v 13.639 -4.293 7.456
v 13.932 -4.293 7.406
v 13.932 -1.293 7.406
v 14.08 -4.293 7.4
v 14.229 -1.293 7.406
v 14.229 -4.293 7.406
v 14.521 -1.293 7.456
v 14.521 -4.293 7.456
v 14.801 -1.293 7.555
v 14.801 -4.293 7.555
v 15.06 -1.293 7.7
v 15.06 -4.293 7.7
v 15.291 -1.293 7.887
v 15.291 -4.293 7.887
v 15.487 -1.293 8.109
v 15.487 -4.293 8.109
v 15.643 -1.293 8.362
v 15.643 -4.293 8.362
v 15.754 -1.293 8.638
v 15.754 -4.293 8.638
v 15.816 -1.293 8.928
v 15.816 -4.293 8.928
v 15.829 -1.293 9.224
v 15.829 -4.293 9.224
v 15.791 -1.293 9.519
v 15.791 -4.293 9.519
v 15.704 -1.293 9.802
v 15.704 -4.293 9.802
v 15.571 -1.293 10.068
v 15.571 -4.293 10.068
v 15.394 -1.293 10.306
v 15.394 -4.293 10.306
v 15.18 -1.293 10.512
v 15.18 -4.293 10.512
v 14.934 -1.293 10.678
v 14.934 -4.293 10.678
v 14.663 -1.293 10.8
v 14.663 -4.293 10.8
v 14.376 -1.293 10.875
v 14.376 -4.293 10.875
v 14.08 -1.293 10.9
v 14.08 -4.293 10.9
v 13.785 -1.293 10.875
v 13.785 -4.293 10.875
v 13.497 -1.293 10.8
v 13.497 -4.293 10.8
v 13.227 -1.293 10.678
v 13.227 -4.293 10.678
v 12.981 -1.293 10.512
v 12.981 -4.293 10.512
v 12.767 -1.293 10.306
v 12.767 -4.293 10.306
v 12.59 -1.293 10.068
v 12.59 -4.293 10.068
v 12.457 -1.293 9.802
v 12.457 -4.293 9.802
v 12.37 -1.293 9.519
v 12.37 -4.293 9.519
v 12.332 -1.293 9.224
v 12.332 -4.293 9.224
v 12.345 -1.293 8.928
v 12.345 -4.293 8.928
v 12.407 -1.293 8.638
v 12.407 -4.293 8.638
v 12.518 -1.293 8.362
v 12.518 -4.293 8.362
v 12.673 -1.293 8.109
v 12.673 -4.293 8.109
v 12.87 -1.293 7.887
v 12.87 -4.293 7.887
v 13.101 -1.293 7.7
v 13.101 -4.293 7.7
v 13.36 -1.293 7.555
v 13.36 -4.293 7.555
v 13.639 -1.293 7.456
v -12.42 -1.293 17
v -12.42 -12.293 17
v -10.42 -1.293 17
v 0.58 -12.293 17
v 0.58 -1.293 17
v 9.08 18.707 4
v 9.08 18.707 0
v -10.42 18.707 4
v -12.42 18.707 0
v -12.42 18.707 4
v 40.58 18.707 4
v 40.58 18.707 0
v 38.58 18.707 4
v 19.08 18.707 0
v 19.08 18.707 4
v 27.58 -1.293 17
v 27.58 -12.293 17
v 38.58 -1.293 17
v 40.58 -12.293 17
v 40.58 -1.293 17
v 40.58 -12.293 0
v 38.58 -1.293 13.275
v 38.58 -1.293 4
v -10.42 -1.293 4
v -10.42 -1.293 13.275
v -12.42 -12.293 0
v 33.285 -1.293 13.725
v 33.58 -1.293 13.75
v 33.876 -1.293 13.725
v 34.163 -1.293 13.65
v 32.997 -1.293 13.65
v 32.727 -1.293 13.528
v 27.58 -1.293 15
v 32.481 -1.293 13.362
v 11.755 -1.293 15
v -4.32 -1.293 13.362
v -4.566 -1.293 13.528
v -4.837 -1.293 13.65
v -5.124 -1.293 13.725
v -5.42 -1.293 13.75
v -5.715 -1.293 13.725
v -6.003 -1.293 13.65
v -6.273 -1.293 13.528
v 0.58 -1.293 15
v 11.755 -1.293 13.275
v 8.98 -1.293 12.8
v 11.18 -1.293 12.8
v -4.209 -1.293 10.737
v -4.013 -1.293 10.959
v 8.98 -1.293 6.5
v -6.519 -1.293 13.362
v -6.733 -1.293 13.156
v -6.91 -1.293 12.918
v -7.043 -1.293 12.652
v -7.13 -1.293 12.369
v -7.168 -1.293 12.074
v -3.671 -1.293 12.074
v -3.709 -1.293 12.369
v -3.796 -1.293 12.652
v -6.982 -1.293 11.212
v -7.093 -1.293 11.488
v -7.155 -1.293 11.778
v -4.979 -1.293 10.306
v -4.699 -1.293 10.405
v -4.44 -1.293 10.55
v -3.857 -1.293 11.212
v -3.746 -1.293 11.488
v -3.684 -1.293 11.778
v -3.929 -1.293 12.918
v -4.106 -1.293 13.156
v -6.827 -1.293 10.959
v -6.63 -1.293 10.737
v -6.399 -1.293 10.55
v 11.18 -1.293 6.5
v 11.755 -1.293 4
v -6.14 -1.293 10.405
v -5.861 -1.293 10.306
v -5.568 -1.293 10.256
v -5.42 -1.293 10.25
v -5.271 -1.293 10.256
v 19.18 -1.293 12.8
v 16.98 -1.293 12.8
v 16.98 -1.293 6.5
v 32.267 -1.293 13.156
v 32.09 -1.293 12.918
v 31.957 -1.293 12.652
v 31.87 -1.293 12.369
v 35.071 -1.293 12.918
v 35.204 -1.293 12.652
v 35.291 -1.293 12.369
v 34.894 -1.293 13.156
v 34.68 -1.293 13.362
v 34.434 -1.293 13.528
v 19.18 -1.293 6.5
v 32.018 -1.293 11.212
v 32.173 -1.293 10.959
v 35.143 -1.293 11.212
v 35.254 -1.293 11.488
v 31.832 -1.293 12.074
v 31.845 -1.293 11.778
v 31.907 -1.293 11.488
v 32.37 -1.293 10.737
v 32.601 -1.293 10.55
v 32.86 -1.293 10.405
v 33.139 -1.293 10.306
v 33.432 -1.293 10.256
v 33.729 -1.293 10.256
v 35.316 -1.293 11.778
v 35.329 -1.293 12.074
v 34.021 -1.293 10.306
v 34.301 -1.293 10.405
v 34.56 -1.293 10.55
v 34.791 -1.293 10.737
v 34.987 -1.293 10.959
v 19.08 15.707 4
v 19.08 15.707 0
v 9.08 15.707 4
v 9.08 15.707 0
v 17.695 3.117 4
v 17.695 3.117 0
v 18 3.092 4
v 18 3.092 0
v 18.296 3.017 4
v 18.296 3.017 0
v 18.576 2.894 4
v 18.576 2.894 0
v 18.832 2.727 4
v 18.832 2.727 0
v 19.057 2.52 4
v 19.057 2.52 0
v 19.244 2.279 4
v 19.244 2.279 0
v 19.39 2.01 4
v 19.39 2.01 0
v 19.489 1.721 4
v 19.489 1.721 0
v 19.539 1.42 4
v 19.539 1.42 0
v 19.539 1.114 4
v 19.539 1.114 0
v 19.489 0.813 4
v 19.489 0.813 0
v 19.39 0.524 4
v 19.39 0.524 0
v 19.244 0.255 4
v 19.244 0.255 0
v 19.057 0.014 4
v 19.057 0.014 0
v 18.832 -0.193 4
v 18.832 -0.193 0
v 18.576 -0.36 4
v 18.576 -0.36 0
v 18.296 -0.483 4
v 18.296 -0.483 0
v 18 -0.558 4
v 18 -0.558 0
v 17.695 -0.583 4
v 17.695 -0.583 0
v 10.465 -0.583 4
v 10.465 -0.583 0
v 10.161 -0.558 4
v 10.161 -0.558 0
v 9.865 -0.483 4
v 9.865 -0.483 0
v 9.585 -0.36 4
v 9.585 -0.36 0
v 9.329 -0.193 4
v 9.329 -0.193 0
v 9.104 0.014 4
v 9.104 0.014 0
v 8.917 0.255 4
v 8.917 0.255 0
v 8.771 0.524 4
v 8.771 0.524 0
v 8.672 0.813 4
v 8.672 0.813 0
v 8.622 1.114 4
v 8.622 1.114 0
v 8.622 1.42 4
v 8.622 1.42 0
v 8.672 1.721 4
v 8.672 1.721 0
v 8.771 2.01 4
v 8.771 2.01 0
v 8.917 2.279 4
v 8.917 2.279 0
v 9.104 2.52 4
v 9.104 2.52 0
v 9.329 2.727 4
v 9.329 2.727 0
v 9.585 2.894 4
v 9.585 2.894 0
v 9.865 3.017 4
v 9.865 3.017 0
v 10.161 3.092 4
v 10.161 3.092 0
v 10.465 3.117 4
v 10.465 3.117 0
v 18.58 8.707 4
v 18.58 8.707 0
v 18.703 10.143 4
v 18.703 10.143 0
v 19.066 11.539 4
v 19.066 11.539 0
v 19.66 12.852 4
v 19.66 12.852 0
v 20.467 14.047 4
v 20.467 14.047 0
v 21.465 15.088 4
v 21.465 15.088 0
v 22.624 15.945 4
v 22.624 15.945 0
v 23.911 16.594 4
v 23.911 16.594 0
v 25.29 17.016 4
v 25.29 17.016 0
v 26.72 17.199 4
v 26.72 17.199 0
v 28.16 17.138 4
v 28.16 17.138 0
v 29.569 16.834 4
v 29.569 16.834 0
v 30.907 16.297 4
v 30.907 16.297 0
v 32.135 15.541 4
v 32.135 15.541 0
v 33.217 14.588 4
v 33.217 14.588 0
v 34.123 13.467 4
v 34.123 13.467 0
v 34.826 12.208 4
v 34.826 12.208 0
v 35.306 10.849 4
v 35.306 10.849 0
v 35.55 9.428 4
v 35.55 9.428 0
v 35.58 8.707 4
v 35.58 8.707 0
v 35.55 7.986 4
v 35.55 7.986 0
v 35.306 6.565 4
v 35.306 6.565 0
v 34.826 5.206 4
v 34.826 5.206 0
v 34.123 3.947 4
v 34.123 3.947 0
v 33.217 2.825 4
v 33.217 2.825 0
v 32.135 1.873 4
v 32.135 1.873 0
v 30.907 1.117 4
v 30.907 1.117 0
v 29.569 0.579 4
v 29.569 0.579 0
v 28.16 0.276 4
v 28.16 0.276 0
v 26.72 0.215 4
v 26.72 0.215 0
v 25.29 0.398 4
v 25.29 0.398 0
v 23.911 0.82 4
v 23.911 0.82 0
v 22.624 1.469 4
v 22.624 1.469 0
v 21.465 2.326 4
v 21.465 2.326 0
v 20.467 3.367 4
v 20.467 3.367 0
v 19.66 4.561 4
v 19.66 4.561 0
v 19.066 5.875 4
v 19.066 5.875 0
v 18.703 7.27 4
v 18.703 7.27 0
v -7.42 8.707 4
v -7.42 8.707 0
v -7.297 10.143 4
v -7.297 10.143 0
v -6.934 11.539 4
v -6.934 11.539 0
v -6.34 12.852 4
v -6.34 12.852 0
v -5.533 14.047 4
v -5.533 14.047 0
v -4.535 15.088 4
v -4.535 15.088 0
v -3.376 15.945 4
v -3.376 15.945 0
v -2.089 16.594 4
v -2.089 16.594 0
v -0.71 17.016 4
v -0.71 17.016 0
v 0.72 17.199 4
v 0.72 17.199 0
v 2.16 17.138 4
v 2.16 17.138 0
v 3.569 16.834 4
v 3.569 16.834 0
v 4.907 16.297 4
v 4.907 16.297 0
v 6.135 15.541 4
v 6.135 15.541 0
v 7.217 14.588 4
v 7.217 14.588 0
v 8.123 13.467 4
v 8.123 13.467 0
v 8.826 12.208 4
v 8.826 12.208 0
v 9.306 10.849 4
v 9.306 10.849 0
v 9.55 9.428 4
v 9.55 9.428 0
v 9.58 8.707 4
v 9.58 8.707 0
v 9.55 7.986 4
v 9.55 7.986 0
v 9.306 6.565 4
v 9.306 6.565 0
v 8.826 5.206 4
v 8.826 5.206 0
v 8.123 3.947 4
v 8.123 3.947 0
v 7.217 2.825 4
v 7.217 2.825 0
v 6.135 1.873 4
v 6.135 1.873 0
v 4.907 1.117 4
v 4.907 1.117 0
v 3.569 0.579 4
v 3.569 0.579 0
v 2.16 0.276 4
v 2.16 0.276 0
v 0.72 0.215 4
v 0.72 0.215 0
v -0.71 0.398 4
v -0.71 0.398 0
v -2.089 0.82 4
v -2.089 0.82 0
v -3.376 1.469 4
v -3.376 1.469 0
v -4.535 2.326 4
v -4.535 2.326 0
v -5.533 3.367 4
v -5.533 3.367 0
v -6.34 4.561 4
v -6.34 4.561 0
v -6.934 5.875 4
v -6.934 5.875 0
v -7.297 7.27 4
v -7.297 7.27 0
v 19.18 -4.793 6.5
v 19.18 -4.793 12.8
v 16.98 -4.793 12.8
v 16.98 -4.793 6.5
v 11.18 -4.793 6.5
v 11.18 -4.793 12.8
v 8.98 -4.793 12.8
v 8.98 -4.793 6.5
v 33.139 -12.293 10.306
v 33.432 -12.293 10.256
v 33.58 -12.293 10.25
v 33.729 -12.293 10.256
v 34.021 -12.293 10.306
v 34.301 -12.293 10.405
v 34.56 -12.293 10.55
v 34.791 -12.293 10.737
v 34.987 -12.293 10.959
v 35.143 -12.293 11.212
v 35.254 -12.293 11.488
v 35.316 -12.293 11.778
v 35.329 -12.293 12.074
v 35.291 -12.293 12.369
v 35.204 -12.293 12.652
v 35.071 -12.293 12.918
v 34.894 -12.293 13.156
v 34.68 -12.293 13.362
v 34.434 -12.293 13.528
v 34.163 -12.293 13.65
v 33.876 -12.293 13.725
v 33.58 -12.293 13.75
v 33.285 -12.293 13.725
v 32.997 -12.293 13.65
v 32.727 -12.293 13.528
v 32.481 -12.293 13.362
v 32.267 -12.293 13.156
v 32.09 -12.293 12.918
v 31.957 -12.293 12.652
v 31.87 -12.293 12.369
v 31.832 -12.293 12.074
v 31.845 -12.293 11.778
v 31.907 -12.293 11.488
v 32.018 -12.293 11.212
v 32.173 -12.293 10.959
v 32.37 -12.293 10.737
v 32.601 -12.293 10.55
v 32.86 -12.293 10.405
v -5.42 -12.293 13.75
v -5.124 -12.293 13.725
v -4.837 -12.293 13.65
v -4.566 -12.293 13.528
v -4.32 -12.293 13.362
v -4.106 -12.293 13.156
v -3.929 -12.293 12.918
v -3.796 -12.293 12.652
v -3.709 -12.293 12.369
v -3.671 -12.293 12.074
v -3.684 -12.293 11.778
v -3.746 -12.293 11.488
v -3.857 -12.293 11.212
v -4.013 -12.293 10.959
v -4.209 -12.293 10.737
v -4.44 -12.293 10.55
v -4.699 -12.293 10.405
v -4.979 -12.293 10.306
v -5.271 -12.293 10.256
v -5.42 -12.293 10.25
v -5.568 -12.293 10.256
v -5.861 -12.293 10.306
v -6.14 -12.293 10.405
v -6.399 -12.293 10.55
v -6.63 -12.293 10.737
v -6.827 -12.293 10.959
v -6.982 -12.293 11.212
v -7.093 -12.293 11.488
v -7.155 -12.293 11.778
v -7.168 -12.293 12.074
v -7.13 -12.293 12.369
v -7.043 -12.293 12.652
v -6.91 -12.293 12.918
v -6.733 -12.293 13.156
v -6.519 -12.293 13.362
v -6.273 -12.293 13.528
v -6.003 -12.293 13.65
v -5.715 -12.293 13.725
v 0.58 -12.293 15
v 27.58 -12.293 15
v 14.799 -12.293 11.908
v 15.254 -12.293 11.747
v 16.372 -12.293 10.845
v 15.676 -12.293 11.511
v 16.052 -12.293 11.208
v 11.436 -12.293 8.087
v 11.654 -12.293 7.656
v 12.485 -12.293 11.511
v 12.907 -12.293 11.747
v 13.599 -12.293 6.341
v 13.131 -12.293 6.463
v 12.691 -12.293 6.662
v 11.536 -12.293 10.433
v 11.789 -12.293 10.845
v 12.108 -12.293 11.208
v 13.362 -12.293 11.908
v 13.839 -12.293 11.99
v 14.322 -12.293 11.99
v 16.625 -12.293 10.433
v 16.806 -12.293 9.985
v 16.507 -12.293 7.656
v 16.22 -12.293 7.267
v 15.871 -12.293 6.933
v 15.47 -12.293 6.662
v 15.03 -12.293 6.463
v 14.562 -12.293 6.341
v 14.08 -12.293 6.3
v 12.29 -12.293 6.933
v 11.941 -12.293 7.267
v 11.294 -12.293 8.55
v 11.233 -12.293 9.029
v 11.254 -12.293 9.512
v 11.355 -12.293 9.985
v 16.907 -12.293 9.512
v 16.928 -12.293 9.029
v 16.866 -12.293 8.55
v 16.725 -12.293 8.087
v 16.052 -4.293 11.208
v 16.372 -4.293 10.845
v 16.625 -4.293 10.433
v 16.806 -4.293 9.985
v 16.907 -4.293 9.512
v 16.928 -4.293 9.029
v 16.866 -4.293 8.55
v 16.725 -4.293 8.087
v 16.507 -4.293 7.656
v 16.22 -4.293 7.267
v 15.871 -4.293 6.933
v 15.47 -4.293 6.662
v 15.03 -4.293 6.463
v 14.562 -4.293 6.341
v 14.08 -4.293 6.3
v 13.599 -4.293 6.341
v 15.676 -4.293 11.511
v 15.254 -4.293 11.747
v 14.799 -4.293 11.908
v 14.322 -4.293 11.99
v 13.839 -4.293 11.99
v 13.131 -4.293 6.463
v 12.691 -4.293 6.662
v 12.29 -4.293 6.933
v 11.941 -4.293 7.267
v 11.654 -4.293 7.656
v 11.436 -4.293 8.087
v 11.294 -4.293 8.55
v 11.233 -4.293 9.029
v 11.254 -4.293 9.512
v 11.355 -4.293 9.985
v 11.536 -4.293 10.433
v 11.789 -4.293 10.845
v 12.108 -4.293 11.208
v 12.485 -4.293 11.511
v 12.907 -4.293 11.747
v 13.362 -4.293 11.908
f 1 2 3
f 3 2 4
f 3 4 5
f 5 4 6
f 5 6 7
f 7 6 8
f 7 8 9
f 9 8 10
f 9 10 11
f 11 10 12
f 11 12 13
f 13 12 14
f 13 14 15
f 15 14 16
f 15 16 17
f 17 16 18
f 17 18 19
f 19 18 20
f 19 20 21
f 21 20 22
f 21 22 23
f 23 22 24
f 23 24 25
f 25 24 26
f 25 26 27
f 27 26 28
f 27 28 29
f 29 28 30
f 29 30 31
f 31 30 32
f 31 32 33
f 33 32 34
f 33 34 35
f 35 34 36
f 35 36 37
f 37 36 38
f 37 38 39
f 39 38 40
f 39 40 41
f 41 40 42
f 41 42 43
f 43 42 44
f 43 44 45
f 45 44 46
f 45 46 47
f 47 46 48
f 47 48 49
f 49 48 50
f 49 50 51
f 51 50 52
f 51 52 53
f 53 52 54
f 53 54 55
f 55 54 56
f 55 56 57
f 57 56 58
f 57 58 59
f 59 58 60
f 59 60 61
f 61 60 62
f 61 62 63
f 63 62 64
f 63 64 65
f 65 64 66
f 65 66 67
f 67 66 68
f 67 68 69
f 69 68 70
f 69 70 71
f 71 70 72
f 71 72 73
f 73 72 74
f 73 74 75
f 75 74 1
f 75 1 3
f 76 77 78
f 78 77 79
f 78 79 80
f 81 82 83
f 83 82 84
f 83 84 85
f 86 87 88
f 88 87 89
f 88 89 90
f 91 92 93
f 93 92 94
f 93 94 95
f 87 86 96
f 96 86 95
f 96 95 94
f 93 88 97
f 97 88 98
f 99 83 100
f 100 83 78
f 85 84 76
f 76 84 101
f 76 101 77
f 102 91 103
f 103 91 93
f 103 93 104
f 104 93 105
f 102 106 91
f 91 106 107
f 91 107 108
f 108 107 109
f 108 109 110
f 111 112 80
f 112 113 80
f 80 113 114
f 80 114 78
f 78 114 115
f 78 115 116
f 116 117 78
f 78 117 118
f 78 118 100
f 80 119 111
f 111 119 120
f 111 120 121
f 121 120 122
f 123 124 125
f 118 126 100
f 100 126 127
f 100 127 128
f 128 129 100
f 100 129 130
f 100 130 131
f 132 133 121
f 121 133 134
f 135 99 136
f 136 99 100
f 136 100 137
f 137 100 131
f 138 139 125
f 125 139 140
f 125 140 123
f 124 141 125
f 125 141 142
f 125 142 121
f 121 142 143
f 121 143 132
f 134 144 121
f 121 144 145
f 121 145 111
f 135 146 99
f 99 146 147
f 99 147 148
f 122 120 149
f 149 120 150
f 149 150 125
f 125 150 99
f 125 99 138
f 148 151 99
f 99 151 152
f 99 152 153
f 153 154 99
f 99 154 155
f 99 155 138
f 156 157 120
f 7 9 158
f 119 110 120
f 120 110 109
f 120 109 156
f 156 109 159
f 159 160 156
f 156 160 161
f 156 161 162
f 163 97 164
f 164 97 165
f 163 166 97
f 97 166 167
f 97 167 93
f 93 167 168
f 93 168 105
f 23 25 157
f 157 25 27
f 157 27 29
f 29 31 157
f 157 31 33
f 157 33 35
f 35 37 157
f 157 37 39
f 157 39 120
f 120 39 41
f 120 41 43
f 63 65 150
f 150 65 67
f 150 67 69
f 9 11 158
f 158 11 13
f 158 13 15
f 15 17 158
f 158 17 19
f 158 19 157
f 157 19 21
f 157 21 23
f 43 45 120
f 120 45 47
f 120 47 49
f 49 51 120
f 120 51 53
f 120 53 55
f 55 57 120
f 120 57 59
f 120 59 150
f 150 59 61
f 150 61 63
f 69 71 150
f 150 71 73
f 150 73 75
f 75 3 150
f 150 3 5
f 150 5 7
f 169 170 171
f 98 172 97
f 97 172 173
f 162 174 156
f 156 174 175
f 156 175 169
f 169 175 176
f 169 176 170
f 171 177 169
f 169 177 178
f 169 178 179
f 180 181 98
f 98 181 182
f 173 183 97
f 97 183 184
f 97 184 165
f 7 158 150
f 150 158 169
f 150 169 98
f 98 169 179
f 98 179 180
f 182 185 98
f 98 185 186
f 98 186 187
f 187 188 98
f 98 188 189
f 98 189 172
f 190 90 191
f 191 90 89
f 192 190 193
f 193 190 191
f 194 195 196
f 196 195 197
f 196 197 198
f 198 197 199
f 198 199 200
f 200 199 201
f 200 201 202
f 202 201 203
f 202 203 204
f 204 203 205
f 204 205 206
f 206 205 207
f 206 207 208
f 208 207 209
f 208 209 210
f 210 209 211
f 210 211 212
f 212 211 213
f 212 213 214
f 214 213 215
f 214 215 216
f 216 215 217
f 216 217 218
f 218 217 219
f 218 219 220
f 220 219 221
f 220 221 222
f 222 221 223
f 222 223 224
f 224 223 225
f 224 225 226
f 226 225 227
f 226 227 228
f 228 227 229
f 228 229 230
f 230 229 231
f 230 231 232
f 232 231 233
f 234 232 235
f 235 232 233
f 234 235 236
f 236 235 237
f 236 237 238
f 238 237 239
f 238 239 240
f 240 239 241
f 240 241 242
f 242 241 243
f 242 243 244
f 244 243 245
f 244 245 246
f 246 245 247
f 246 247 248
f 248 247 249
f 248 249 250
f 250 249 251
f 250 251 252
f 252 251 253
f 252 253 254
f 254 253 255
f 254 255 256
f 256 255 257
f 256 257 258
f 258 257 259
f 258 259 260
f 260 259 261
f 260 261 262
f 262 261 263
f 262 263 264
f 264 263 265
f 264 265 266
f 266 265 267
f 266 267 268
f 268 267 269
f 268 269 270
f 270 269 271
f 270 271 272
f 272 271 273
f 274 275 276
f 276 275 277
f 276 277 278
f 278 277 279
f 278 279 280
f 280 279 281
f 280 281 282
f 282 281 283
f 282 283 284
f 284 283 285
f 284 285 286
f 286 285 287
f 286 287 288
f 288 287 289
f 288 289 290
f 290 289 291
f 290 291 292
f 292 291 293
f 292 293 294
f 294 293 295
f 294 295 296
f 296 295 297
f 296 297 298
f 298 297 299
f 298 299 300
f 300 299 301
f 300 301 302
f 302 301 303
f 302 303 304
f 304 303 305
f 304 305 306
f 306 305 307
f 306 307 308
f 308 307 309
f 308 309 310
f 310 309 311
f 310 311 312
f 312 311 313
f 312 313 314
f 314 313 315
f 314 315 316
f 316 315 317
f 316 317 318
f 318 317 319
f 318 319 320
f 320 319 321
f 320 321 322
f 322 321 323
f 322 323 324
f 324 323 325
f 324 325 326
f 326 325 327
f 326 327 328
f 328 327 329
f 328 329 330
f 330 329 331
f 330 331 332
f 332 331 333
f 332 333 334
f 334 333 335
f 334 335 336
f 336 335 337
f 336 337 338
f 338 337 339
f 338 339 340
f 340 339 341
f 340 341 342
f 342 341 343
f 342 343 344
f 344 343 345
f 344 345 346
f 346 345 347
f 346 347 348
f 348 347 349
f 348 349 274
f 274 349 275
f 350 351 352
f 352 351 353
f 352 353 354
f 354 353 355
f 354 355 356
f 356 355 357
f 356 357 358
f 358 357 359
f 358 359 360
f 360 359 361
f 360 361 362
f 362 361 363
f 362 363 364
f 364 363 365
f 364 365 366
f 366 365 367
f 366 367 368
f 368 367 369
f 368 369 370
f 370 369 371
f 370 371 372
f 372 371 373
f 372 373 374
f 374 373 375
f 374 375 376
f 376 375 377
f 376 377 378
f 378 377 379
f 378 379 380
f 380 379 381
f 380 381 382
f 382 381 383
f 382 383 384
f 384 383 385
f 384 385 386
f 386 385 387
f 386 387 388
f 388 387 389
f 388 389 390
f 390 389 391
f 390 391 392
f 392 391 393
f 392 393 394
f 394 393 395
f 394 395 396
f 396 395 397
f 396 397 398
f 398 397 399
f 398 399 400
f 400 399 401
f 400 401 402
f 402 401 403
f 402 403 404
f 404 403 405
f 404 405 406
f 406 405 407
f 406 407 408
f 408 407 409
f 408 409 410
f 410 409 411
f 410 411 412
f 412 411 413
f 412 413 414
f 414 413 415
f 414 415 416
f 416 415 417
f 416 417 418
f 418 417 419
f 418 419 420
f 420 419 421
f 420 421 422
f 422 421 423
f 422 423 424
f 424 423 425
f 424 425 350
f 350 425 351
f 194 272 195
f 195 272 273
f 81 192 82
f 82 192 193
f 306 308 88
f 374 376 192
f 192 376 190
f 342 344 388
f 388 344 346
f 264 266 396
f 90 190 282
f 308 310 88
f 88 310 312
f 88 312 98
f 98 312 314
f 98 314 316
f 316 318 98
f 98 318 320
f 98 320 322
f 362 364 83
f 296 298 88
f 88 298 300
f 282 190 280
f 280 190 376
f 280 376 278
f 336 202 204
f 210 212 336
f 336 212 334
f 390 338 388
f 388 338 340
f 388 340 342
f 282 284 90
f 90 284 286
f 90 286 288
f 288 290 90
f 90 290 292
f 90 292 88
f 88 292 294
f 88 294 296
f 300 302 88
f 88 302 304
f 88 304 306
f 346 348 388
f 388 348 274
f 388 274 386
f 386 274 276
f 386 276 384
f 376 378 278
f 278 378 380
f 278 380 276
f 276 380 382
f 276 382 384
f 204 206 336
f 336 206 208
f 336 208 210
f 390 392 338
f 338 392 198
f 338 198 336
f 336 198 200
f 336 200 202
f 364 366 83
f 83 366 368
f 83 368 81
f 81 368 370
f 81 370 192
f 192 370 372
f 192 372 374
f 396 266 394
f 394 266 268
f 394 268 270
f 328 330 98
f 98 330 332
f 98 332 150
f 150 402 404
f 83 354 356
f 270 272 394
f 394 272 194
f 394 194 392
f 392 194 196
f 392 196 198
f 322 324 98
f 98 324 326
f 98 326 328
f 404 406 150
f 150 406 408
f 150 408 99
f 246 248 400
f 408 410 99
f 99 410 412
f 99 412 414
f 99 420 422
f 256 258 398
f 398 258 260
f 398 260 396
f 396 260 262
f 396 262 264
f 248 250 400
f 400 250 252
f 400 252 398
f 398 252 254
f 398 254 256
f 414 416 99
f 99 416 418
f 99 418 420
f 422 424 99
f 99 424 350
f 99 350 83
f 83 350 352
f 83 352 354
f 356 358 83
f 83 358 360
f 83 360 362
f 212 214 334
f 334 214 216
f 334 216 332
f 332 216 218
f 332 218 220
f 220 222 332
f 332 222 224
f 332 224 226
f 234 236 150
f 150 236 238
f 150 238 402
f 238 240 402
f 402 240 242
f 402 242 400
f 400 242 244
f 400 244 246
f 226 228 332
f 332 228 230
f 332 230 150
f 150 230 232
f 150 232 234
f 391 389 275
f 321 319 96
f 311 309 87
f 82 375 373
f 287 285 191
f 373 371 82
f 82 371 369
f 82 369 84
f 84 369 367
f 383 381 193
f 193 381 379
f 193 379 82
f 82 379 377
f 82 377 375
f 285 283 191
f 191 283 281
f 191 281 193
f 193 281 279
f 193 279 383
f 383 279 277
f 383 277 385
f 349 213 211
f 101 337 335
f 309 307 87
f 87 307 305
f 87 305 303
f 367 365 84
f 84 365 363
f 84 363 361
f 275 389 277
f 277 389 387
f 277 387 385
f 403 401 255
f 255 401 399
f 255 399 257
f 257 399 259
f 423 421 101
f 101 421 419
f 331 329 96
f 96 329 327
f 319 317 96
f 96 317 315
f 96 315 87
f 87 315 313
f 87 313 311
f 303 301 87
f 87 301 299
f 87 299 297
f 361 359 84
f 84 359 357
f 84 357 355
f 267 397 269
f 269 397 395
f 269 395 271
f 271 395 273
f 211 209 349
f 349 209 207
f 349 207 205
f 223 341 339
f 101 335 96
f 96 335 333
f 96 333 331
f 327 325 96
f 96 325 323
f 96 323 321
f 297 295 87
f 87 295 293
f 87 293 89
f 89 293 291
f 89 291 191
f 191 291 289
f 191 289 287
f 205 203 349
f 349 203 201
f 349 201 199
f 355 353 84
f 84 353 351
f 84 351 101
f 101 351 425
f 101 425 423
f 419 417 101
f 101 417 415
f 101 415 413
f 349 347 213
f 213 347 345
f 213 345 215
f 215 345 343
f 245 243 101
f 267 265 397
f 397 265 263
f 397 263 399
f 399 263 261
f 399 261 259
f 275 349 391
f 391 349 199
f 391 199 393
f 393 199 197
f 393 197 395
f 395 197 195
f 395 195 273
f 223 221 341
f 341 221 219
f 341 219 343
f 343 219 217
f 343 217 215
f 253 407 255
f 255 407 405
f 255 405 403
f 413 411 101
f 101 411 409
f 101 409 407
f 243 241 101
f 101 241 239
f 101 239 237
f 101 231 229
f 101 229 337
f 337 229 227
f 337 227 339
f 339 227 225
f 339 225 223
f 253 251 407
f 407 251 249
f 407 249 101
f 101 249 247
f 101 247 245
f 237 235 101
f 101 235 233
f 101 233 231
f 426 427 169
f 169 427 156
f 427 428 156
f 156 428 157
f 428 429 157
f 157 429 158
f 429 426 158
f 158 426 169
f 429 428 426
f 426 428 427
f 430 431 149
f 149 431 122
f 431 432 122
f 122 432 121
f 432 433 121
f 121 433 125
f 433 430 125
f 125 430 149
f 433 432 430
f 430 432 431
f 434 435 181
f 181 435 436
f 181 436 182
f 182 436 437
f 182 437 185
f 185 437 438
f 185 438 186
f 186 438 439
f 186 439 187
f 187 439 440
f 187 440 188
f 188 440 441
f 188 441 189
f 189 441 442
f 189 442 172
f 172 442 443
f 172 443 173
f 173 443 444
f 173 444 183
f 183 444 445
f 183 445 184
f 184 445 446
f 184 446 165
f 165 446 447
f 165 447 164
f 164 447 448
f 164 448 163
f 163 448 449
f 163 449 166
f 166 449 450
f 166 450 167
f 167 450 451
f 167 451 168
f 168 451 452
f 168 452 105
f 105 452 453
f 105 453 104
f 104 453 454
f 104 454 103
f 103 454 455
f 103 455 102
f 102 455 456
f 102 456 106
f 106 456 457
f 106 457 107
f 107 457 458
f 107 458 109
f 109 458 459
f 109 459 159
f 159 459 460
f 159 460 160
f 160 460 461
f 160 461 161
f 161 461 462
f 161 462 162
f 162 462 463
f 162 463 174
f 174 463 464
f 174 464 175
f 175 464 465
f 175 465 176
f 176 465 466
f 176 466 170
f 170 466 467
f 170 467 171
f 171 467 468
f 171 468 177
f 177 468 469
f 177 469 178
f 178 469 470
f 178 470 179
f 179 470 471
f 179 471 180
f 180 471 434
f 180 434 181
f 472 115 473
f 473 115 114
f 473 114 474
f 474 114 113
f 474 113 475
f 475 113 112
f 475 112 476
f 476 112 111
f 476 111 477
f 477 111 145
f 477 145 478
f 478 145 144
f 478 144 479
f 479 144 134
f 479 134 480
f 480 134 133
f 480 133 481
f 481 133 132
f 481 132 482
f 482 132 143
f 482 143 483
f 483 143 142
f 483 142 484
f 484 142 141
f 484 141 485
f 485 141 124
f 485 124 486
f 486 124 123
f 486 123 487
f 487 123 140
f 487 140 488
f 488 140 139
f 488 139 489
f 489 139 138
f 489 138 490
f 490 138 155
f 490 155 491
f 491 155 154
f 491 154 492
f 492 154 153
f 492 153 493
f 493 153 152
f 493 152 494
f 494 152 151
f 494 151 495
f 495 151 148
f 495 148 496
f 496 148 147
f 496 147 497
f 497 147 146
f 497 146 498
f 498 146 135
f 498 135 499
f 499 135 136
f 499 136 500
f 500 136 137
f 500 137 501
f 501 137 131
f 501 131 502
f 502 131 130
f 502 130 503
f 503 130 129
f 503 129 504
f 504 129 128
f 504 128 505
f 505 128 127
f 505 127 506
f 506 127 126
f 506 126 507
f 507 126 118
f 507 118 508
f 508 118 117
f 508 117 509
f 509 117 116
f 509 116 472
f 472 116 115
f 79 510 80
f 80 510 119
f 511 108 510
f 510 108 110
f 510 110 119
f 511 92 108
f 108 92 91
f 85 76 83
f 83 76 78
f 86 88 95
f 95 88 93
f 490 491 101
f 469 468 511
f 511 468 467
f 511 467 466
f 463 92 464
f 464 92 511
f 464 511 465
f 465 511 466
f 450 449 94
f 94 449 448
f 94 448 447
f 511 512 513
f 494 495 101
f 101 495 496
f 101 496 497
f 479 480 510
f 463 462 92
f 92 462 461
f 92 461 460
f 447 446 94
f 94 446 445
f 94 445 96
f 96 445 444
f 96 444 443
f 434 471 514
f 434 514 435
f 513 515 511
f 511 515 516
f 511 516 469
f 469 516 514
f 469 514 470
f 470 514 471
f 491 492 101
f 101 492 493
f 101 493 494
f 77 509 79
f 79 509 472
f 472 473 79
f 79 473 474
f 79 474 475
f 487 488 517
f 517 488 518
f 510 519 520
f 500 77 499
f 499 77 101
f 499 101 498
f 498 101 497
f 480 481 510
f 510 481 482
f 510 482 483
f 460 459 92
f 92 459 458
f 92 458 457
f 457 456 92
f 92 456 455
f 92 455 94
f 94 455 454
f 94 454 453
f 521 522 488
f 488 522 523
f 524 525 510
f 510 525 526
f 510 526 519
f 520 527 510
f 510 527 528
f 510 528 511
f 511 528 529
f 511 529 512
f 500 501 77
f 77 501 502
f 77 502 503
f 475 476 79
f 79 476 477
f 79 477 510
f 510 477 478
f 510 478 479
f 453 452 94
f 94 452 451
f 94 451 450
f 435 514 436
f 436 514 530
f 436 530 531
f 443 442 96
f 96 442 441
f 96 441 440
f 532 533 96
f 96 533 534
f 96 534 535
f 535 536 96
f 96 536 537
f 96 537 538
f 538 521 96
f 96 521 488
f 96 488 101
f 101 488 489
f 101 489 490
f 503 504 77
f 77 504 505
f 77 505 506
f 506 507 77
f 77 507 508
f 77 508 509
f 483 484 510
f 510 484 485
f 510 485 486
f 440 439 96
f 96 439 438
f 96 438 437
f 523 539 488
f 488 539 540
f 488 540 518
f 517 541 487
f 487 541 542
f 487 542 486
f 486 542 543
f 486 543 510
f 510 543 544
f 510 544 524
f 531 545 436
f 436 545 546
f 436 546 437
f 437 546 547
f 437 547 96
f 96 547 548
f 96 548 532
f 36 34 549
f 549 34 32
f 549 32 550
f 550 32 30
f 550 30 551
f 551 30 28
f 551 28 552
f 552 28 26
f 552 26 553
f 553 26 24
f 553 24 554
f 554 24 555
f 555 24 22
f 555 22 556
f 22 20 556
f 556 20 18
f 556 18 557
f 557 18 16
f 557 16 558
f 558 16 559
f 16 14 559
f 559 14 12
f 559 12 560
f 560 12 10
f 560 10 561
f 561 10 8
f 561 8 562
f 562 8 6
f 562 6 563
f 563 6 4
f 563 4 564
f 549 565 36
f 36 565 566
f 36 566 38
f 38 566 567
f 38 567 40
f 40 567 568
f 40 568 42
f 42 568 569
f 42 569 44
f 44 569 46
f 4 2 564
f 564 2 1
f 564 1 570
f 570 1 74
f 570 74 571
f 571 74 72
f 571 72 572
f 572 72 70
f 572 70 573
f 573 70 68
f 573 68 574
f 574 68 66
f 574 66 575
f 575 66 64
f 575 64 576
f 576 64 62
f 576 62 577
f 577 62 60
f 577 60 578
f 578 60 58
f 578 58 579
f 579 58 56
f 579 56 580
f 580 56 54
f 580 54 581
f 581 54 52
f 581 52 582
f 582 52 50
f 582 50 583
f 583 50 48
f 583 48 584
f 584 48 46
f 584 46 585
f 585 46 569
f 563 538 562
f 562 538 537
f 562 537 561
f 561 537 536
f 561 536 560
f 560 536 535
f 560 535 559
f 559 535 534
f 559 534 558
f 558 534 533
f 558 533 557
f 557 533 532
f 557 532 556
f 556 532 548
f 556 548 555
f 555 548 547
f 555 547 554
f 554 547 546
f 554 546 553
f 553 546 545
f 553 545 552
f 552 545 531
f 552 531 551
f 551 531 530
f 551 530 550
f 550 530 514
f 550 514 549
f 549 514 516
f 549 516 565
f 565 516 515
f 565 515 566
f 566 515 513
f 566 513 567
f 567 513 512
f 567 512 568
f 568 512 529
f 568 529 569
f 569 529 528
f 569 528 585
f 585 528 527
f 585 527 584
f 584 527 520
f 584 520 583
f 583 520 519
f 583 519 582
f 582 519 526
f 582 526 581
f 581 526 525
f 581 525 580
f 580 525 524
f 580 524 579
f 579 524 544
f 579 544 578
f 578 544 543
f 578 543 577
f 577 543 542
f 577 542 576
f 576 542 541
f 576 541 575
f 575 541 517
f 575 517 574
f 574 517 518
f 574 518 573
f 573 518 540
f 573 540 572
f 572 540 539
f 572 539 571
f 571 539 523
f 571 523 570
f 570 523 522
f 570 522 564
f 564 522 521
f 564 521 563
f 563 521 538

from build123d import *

# Parameters (mm, degrees)
SKETCH1_R           = 8.5
BOSS_EXTRUDE1_DEPTH = 4
BOSS_EXTRUDE2_DEPTH = 13
SKETCH3_W           = 2.2
SKETCH3_H           = 6.3
CUT_EXTRUDE1_DEPTH  = 3.5
SKETCH4_R           = 1.75
CUT_EXTRUDE2_DEPTH  = 47.663174732
SKETCH6_W           = 13.5
SKETCH6_H           = 2
CUT_EXTRUDE4_DEPTH  = 47.663174732
SKETCH7_W           = 2
SKETCH7_H           = 25
BOSS_EXTRUDE3_DEPTH = 17
CUT_EXTRUDE5_DEPTH  = 72
SKETCH9_R           = 1.75
BOSS_EXTRUDE4_DEPTH = 6
SKETCH10_R          = 2.85
CUT_EXTRUDE6_DEPTH  = 8


with BuildPart() as part:
    # Sketch1 → Boss-Extrude1 (new body)
    with BuildSketch(Plane.XY):
        Polygon((-10.41954023, 18.706896552), (-10.41954023, -6.293103448), (38.58045977, -6.293103448), (38.58045977, 18.706896552), (19.08045977, 18.706896552), (19.08045977, 15.706896552), (14.08045977, 15.706896552), (9.08045977, 15.706896552), (9.08045977, 18.706896552), align=None)
        with BuildLine():
            ThreePointArc((10.46545977, -0.583103448), (8.61545977, 1.266896552), (10.46545977, 3.116896552))
            Line((10.46545977, 3.116896552), (17.69545977, 3.116896552))
            ThreePointArc((17.69545977, 3.116896552), (19.54545977, 1.266896552), (17.69545977, -0.583103448))
            Line((17.69545977, -0.583103448), (10.46545977, -0.583103448))
        make_face(mode=Mode.SUBTRACT)
        with Locations((1.08045977, 8.706896552)):
            Circle(SKETCH1_R, mode=Mode.SUBTRACT)
        with Locations((27.08045977, 8.706896552)):
            Circle(SKETCH1_R, mode=Mode.SUBTRACT)
    extrude(amount=BOSS_EXTRUDE1_DEPTH)

    # Sketch2 → Boss-Extrude2 (add)
    with BuildSketch(Plane.XY.offset(4)):
        Polygon((14.08045977, -1.293103448), (38.58045977, -1.293103448), (38.58045977, -6.293103448), (-10.41954023, -6.293103448), (-10.41954023, -1.293103448), align=None)
    extrude(amount=BOSS_EXTRUDE2_DEPTH)

    # Sketch3 → Cut-Extrude1 (cut)
    with BuildSketch(Plane(origin=(0, -1.293103448, 0), x_dir=(1, 0, 0), z_dir=(0, 1, 0))):
        with Locations((10.08045977, -9.65)):
            Rectangle(SKETCH3_W, SKETCH3_H)
        with Locations((18.08045977, -9.65)):
            Rectangle(SKETCH3_W, SKETCH3_H)
    extrude(amount=-CUT_EXTRUDE1_DEPTH, mode=Mode.SUBTRACT)

    # Sketch4 → Cut-Extrude2 (cut, through all)
    with BuildSketch(Plane(origin=(0, -1.293103448, 0), x_dir=(1, 0, 0), z_dir=(0, 1, 0))):
        with Locations(Location((14.08045977, -9.15, 0), (0, 0, 270))):
            Circle(SKETCH4_R)
        with Locations(Location((33.58045977, -12, 0), (0, 0, 270))):
            Circle(SKETCH4_R)
        with Locations(Location((-5.41954023, -12, 0), (0, 0, 90))):
            Circle(SKETCH4_R)
    extrude(amount=-CUT_EXTRUDE2_DEPTH, mode=Mode.SUBTRACT)

    # Sketch6 → Cut-Extrude4 (cut, through all)
    with BuildSketch(Plane(origin=(0, -1.293103448, 0), x_dir=(1, 0, 0), z_dir=(0, 1, 0))):
        with Locations((7.33045977, -16)):
            Rectangle(SKETCH6_W, SKETCH6_H)
        with Locations((20.83045977, -16)):
            Rectangle(SKETCH6_W, SKETCH6_H)
    extrude(amount=-CUT_EXTRUDE4_DEPTH, mode=Mode.SUBTRACT)

    # Sketch7 → Boss-Extrude3 (add)
    with BuildSketch(Plane(origin=(0, 0, 0), x_dir=(-1, 0, 0), z_dir=(0, 0, -1))):
        with Locations((-39.58045977, 6.206896552)):
            Rectangle(SKETCH7_W, SKETCH7_H)
        with Locations((11.41954023, 6.206896552)):
            Rectangle(SKETCH7_W, SKETCH7_H)
    extrude(amount=-BOSS_EXTRUDE3_DEPTH)

    # Sketch8 → Cut-Extrude5 (cut)
    with BuildSketch(Plane(origin=(40.58045977, 0, 0), x_dir=(0, 0, -1), z_dir=(1, 0, 0))):
        Polygon((-4, 18.706896552), (-17, -1.293103448), (-17, 18.706896552), align=None)
    extrude(amount=-CUT_EXTRUDE5_DEPTH, mode=Mode.SUBTRACT)

    # Sketch9 → Boss-Extrude4 (add)
    with BuildSketch(Plane(origin=(0, -6.293103448, 0), x_dir=(-1, 0, 0), z_dir=(0, -1, 0))):
        Polygon((-40.58045977, 0), (-40.58045977, -17), (-27.58045977, -17), (-27.58045977, -15), (-0.58045977, -15), (-0.58045977, -17), (12.41954023, -17), (12.41954023, 0), align=None)
        with Locations(Location((5.41954023, -12, 0), (0, 0, 90))):
            Circle(SKETCH9_R, mode=Mode.SUBTRACT)
        with Locations(Location((-14.08045977, -9.15, 0), (0, 0, 270))):
            Circle(SKETCH9_R, mode=Mode.SUBTRACT)
        with Locations(Location((-33.58045977, -12, 0), (0, 0, 270))):
            Circle(SKETCH9_R, mode=Mode.SUBTRACT)
    extrude(amount=BOSS_EXTRUDE4_DEPTH)

    # Sketch10 → Cut-Extrude6 (cut)
    with BuildSketch(Plane(origin=(0, -12.293103448, 0), x_dir=(-1, 0, 0), z_dir=(0, -1, 0))):
        with Locations(Location((-14.08045977, -9.15, 0), (0, 0, 90))):
            Circle(SKETCH10_R)
    extrude(amount=-CUT_EXTRUDE6_DEPTH, mode=Mode.SUBTRACT)


solid = part.part
